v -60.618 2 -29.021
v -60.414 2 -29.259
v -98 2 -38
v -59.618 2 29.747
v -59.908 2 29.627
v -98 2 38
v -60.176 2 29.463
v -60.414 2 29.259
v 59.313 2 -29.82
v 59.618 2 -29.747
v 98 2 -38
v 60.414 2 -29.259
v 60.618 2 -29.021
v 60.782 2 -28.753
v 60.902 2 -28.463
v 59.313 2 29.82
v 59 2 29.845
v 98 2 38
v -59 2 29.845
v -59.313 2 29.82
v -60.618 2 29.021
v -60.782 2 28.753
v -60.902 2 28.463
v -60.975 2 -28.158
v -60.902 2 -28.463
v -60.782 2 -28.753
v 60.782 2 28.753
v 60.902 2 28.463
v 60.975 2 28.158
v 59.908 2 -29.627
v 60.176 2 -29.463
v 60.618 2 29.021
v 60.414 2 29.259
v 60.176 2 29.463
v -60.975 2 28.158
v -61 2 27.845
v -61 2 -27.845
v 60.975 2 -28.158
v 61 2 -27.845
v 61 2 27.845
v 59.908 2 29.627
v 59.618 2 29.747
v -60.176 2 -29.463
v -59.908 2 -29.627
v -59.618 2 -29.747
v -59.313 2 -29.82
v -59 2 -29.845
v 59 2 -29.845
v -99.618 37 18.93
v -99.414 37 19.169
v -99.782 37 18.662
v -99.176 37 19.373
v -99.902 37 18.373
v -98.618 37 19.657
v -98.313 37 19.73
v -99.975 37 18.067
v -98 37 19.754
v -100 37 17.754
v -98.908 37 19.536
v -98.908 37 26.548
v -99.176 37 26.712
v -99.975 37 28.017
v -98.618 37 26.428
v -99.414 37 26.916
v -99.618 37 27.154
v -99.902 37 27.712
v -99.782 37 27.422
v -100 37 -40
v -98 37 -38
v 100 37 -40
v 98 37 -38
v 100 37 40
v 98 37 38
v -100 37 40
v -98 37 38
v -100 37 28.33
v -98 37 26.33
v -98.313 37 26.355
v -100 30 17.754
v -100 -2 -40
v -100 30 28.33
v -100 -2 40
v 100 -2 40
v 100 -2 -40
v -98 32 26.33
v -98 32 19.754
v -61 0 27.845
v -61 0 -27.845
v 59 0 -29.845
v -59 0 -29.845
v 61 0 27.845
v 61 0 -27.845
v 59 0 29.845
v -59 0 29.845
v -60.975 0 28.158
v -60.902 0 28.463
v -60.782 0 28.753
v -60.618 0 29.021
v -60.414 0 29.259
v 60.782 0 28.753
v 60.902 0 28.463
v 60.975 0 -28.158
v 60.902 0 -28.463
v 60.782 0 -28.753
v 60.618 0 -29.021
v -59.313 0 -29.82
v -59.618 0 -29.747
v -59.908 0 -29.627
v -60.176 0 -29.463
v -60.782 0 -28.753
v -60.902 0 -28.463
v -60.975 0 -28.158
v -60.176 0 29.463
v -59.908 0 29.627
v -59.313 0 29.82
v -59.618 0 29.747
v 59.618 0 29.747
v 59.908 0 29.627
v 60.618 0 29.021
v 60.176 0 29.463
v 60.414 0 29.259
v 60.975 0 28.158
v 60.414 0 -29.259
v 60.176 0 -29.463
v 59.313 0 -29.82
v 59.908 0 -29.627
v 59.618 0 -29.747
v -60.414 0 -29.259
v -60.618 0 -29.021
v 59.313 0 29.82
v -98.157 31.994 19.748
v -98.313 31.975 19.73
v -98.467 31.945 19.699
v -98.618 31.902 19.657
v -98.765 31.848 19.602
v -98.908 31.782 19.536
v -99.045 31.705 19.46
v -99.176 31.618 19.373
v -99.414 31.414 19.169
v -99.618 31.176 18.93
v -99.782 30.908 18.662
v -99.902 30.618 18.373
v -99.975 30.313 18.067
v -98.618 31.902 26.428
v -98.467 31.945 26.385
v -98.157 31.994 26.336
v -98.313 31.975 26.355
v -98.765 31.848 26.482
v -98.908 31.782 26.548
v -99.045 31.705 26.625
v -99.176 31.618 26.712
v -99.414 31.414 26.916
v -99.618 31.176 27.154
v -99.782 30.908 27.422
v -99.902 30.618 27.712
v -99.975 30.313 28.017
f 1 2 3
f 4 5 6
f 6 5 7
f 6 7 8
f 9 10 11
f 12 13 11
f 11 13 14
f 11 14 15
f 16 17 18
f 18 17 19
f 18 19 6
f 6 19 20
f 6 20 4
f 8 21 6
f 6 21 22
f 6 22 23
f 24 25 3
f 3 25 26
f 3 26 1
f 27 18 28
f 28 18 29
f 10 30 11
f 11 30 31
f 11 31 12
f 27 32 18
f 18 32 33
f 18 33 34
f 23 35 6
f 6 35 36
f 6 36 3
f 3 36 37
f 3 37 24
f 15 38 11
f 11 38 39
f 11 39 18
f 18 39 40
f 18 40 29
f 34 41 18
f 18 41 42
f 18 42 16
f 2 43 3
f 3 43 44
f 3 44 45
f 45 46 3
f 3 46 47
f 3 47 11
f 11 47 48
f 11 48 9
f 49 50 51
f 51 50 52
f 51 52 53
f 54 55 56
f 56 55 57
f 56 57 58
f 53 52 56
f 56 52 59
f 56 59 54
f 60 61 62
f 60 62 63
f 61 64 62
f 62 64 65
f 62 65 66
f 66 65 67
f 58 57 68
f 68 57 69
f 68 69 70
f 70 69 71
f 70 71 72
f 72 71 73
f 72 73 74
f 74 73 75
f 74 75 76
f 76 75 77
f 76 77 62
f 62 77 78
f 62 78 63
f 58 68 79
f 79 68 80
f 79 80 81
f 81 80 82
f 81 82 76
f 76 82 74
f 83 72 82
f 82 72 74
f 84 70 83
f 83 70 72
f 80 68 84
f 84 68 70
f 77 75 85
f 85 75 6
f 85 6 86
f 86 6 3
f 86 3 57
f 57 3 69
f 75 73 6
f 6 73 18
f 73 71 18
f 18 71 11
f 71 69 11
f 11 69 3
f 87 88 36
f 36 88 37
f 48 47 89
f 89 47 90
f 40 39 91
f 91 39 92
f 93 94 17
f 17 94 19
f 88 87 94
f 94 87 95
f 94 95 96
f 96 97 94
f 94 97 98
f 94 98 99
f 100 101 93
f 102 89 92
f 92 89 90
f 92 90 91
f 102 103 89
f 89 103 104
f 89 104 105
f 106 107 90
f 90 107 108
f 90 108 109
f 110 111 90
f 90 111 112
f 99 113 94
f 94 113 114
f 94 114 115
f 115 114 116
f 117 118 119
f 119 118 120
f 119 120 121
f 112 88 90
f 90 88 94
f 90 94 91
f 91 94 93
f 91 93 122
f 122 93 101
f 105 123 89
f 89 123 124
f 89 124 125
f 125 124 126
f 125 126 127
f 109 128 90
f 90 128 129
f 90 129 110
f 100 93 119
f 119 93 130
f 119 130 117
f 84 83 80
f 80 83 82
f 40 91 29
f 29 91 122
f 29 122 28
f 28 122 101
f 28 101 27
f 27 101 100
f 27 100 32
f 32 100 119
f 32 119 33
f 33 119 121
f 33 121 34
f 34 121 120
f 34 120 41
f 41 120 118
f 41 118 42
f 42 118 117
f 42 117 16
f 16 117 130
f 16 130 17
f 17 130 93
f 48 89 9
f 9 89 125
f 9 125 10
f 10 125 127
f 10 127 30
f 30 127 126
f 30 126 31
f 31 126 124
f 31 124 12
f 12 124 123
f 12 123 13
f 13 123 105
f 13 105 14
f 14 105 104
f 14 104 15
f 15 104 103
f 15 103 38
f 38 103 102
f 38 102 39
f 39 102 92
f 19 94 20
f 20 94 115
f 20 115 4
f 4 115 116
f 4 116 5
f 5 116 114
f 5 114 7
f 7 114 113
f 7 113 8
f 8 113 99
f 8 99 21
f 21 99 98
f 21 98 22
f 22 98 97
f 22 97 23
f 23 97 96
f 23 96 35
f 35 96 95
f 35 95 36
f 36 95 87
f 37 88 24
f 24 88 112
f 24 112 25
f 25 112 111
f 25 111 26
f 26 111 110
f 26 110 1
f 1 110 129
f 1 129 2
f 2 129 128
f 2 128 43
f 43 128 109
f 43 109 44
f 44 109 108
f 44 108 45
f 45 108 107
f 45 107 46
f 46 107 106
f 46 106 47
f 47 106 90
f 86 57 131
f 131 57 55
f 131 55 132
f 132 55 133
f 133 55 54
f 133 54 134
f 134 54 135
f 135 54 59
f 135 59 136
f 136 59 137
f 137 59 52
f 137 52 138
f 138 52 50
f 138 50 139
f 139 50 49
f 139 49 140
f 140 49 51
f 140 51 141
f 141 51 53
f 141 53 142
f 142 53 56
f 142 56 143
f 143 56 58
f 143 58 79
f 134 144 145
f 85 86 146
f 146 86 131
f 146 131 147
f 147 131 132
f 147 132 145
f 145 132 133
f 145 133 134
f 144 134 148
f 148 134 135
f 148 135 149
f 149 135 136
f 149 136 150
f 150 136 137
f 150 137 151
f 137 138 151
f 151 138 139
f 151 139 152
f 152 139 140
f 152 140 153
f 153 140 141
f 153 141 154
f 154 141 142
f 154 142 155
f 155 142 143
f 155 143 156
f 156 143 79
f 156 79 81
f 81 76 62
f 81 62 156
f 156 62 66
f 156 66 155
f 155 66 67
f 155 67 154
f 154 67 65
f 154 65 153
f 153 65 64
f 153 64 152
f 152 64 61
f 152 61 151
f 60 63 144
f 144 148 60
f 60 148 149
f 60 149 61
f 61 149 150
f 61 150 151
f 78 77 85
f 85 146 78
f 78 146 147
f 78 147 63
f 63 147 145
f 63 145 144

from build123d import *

# Parameters (mm, degrees)
SKETCH2_W           = 200
SKETCH2_H           = 80
BOSS_EXTRUDE3_DEPTH = 37
SHELL2_T            = -2
SKETCH3_W           = 122
SKETCH3_H           = 59.69
CUT_EXTRUDE1_DEPTH  = 2
SKETCH4_W           = 200
SKETCH4_H           = 80
BOSS_EXTRUDE4_DEPTH = 2
FILLET5_R           = 2
SKETCH7_W           = 6.575531056
SKETCH7_H           = 5
CUT_EXTRUDE2_DEPTH  = 5
FILLET6_R           = 2


with BuildPart() as part:
    # Sketch2 → Boss-Extrude3 (new body)
    with BuildSketch(Plane(origin=(0, 0, 0), x_dir=(1, 0, 0), z_dir=(0, 1, 0))):
        Rectangle(SKETCH2_W, SKETCH2_H)
    extrude(amount=BOSS_EXTRUDE3_DEPTH)

    # Shell2
    shell2_openings = [part.faces().sort_by_distance(p)[0] for p in [
        (0, 37, 0),
    ]]
    offset(amount=SHELL2_T, openings=shell2_openings, kind=Kind.INTERSECTION)

    # Sketch3 → Cut-Extrude1 (cut)
    with BuildSketch(Plane(origin=(0, 2, 0), x_dir=(1, 0, 0), z_dir=(0, 1, 0))):
        Rectangle(SKETCH3_W, SKETCH3_H)
    extrude(amount=-CUT_EXTRUDE1_DEPTH, mode=Mode.SUBTRACT)

    # Sketch4 → Boss-Extrude4 (add)
    with BuildSketch(Plane.XZ):
        Rectangle(SKETCH4_W, SKETCH4_H)
    extrude(amount=BOSS_EXTRUDE4_DEPTH)

    # Fillet5
    fillet5_edges = [part.edges().sort_by_distance(p)[0] for p in [
        (-61, 1, 29.845),
        (-61, 1, -29.845),
        (61, 1, -29.845),
        (61, 1, 29.845),
    ]]
    fillet(fillet5_edges, radius=FILLET5_R)

    # Sketch7 → Cut-Extrude2 (cut)
    with BuildSketch(Plane.ZY.offset(100)):
        with Locations((23.042234472, 34.5)):
            Rectangle(SKETCH7_W, SKETCH7_H)
    extrude(amount=-CUT_EXTRUDE2_DEPTH, mode=Mode.SUBTRACT)

    # Fillet6
    fillet6_edges = [part.edges().sort_by_distance(p)[0] for p in [
        (-100, 34.5, 26.33),
        (-100, 34.5, 19.754468944),
        (-100, 32, 23.042234472),
    ]]
    fillet(fillet6_edges, radius=FILLET6_R - 0.0001)  # a hair under: the kernel refuses the full size


solid = part.part
